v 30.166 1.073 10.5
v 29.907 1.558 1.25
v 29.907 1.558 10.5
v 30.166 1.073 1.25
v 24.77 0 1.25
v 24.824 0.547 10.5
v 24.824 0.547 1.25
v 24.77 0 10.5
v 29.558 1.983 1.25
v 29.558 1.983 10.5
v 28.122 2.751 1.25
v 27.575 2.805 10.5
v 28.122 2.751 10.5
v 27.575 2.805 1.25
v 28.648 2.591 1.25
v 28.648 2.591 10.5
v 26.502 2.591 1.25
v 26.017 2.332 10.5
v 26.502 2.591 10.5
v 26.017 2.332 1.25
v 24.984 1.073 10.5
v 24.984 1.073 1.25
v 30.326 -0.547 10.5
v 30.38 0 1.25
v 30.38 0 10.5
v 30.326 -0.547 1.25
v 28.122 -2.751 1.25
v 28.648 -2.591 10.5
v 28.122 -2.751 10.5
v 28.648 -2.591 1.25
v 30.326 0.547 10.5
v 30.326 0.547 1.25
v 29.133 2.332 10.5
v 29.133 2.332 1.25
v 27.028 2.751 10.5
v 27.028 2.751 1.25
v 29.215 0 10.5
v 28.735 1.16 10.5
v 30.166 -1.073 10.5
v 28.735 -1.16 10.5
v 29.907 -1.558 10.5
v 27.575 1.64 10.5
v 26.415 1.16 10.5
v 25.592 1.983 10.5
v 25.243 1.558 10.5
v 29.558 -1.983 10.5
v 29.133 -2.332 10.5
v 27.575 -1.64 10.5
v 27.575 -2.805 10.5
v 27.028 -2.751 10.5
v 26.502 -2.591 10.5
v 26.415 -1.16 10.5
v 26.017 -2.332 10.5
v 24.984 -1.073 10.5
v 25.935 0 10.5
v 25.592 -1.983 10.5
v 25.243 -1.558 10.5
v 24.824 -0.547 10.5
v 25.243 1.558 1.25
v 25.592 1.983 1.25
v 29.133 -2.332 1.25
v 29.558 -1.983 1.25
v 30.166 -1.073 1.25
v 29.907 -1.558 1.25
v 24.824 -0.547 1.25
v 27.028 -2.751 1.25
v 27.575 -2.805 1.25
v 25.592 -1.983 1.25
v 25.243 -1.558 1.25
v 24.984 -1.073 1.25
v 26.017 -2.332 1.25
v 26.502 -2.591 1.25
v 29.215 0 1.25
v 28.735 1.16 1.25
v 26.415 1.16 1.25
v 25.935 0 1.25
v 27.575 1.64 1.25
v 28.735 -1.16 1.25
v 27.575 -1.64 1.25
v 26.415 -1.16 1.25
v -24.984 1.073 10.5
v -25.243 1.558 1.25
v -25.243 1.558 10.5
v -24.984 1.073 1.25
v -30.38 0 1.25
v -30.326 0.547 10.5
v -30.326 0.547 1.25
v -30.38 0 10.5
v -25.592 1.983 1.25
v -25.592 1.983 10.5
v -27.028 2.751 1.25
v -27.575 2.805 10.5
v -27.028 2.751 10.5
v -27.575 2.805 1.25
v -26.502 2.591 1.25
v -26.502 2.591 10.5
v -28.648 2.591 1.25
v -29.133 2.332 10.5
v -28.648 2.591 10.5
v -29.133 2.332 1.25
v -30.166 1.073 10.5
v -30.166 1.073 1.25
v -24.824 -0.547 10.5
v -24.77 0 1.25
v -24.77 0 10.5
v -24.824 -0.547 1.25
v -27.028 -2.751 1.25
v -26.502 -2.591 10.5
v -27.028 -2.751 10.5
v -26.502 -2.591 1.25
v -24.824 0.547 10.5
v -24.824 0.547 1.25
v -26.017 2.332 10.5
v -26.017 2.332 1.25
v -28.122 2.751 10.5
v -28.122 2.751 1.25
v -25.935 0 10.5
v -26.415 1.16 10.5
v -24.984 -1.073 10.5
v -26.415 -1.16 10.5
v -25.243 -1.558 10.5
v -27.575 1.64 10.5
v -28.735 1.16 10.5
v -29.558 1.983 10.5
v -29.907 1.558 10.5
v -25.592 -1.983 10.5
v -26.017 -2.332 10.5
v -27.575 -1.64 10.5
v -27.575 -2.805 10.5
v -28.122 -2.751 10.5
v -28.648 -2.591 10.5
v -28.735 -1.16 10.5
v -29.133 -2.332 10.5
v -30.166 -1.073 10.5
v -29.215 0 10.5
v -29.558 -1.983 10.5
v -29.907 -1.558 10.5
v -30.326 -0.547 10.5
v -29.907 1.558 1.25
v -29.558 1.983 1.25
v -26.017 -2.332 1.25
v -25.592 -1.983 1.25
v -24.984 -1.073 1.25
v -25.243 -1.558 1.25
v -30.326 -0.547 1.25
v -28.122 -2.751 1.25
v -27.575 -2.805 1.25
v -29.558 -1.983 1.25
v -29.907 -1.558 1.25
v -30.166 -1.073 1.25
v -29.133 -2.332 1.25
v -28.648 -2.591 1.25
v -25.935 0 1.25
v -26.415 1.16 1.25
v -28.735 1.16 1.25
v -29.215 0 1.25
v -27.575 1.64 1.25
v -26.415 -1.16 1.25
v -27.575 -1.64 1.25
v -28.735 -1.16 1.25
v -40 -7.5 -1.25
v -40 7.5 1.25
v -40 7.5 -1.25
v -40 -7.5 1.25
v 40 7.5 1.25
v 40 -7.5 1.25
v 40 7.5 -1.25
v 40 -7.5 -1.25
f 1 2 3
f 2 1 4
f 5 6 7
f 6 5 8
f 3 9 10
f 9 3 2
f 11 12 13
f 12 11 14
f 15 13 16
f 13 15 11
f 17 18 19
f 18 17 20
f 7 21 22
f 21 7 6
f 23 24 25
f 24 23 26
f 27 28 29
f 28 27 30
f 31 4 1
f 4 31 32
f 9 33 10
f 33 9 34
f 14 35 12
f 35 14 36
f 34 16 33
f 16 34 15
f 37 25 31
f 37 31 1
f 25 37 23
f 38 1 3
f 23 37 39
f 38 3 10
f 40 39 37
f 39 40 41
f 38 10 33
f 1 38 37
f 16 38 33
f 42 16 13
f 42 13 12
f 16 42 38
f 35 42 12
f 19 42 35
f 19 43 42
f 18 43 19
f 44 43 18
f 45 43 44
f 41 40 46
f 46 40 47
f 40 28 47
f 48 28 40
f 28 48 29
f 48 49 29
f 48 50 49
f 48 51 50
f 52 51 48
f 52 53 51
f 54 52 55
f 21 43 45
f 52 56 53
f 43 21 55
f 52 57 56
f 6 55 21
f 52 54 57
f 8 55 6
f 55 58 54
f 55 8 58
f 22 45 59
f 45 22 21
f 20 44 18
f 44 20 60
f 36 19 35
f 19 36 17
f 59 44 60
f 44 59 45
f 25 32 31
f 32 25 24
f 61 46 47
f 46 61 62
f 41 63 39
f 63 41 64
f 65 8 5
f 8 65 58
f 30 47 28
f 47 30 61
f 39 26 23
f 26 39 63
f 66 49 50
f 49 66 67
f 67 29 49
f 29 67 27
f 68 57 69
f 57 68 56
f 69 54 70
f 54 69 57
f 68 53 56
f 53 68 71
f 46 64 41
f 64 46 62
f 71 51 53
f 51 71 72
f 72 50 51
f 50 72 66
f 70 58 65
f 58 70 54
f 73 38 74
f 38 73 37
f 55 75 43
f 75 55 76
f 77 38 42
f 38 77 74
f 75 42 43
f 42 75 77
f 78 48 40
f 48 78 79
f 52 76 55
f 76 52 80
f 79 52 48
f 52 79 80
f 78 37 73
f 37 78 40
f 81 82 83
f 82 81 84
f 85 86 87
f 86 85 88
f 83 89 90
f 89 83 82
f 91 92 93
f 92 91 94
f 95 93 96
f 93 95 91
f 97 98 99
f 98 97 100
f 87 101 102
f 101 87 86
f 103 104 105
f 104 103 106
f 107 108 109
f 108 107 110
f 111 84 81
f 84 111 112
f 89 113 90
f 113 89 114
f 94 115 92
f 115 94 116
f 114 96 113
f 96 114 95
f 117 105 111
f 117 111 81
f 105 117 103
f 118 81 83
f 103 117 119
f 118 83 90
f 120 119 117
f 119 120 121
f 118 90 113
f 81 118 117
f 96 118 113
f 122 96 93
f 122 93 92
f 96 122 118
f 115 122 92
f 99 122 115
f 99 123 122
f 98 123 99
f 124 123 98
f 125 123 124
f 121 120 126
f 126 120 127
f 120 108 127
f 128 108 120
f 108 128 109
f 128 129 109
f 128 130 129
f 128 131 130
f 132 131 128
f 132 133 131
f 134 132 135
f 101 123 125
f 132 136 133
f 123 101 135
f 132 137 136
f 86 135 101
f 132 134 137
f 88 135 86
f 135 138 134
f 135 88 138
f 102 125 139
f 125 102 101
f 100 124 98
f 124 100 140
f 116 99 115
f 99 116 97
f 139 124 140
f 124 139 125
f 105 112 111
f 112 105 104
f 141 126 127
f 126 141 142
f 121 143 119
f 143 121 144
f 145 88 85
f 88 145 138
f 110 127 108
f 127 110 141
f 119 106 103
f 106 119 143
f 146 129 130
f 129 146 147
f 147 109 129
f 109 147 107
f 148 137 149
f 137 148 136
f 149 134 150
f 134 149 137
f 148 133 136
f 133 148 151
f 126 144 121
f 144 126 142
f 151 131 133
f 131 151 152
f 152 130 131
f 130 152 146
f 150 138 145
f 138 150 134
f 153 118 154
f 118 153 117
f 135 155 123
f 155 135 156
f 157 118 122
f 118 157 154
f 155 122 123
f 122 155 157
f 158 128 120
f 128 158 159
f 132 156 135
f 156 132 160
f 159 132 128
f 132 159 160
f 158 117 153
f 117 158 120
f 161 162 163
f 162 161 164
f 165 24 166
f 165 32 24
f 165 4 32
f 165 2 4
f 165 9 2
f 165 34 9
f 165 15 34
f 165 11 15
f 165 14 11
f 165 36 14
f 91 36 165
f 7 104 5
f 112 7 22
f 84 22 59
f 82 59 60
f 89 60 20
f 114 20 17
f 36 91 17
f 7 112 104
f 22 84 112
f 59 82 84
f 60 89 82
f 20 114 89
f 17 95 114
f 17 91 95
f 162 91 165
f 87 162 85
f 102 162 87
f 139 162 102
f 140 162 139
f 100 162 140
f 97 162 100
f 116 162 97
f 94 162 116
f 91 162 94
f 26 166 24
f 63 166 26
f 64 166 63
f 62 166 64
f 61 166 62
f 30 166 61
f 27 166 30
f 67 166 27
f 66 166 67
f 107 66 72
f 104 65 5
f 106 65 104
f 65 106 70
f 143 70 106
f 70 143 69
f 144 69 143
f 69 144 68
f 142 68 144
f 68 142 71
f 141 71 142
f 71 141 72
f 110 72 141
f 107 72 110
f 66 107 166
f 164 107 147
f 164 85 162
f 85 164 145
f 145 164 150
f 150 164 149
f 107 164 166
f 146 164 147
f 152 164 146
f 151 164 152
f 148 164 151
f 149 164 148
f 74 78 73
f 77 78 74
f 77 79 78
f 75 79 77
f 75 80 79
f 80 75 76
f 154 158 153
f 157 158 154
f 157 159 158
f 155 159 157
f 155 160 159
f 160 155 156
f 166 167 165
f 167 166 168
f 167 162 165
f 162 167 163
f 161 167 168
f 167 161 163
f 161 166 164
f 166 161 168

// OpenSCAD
module standoff(height, screw, screw_cover) {
    difference() {
        cylinder(
            h=height,
            r1=(screw + screw_cover) / 2,
            r2=(screw + screw_cover) / 2,
            $fn=32
        );
        translate([0, 0, -1]) {
            cylinder(
                h=height * 2,
                r1=screw / 2,
                r2=screw / 2,
                $fn=8
            );
        }
    }
}


module board_plate(
    width,
    lenght,
    thickness,
    screw,
    screw_cover,
    height,
    separation,
) {
    standoff = screw + screw_cover;
    standoff_separation = separation - standoff;

    cube([width, lenght, thickness], center=true);
    
    translate([standoff_separation / 2, 0, 0]) {
        standoff(height + thickness, screw, screw_cover);
    }
    translate([-standoff_separation / 2, 0, 0]) {
        standoff(height + thickness, screw, screw_cover);
    }
    // cube([separation, lenght, thickness * 2], center=true);
}


// Standoffs
screw = 3.28;
screw_cover = 2.33;
height = 8;
separation = 60.76;

// Base plate
width = 80;
length = 15;
thickness = 2.5;


board_plate(
    width,
    length,
    thickness,
    screw,
    screw_cover,
    height,
    separation
);
